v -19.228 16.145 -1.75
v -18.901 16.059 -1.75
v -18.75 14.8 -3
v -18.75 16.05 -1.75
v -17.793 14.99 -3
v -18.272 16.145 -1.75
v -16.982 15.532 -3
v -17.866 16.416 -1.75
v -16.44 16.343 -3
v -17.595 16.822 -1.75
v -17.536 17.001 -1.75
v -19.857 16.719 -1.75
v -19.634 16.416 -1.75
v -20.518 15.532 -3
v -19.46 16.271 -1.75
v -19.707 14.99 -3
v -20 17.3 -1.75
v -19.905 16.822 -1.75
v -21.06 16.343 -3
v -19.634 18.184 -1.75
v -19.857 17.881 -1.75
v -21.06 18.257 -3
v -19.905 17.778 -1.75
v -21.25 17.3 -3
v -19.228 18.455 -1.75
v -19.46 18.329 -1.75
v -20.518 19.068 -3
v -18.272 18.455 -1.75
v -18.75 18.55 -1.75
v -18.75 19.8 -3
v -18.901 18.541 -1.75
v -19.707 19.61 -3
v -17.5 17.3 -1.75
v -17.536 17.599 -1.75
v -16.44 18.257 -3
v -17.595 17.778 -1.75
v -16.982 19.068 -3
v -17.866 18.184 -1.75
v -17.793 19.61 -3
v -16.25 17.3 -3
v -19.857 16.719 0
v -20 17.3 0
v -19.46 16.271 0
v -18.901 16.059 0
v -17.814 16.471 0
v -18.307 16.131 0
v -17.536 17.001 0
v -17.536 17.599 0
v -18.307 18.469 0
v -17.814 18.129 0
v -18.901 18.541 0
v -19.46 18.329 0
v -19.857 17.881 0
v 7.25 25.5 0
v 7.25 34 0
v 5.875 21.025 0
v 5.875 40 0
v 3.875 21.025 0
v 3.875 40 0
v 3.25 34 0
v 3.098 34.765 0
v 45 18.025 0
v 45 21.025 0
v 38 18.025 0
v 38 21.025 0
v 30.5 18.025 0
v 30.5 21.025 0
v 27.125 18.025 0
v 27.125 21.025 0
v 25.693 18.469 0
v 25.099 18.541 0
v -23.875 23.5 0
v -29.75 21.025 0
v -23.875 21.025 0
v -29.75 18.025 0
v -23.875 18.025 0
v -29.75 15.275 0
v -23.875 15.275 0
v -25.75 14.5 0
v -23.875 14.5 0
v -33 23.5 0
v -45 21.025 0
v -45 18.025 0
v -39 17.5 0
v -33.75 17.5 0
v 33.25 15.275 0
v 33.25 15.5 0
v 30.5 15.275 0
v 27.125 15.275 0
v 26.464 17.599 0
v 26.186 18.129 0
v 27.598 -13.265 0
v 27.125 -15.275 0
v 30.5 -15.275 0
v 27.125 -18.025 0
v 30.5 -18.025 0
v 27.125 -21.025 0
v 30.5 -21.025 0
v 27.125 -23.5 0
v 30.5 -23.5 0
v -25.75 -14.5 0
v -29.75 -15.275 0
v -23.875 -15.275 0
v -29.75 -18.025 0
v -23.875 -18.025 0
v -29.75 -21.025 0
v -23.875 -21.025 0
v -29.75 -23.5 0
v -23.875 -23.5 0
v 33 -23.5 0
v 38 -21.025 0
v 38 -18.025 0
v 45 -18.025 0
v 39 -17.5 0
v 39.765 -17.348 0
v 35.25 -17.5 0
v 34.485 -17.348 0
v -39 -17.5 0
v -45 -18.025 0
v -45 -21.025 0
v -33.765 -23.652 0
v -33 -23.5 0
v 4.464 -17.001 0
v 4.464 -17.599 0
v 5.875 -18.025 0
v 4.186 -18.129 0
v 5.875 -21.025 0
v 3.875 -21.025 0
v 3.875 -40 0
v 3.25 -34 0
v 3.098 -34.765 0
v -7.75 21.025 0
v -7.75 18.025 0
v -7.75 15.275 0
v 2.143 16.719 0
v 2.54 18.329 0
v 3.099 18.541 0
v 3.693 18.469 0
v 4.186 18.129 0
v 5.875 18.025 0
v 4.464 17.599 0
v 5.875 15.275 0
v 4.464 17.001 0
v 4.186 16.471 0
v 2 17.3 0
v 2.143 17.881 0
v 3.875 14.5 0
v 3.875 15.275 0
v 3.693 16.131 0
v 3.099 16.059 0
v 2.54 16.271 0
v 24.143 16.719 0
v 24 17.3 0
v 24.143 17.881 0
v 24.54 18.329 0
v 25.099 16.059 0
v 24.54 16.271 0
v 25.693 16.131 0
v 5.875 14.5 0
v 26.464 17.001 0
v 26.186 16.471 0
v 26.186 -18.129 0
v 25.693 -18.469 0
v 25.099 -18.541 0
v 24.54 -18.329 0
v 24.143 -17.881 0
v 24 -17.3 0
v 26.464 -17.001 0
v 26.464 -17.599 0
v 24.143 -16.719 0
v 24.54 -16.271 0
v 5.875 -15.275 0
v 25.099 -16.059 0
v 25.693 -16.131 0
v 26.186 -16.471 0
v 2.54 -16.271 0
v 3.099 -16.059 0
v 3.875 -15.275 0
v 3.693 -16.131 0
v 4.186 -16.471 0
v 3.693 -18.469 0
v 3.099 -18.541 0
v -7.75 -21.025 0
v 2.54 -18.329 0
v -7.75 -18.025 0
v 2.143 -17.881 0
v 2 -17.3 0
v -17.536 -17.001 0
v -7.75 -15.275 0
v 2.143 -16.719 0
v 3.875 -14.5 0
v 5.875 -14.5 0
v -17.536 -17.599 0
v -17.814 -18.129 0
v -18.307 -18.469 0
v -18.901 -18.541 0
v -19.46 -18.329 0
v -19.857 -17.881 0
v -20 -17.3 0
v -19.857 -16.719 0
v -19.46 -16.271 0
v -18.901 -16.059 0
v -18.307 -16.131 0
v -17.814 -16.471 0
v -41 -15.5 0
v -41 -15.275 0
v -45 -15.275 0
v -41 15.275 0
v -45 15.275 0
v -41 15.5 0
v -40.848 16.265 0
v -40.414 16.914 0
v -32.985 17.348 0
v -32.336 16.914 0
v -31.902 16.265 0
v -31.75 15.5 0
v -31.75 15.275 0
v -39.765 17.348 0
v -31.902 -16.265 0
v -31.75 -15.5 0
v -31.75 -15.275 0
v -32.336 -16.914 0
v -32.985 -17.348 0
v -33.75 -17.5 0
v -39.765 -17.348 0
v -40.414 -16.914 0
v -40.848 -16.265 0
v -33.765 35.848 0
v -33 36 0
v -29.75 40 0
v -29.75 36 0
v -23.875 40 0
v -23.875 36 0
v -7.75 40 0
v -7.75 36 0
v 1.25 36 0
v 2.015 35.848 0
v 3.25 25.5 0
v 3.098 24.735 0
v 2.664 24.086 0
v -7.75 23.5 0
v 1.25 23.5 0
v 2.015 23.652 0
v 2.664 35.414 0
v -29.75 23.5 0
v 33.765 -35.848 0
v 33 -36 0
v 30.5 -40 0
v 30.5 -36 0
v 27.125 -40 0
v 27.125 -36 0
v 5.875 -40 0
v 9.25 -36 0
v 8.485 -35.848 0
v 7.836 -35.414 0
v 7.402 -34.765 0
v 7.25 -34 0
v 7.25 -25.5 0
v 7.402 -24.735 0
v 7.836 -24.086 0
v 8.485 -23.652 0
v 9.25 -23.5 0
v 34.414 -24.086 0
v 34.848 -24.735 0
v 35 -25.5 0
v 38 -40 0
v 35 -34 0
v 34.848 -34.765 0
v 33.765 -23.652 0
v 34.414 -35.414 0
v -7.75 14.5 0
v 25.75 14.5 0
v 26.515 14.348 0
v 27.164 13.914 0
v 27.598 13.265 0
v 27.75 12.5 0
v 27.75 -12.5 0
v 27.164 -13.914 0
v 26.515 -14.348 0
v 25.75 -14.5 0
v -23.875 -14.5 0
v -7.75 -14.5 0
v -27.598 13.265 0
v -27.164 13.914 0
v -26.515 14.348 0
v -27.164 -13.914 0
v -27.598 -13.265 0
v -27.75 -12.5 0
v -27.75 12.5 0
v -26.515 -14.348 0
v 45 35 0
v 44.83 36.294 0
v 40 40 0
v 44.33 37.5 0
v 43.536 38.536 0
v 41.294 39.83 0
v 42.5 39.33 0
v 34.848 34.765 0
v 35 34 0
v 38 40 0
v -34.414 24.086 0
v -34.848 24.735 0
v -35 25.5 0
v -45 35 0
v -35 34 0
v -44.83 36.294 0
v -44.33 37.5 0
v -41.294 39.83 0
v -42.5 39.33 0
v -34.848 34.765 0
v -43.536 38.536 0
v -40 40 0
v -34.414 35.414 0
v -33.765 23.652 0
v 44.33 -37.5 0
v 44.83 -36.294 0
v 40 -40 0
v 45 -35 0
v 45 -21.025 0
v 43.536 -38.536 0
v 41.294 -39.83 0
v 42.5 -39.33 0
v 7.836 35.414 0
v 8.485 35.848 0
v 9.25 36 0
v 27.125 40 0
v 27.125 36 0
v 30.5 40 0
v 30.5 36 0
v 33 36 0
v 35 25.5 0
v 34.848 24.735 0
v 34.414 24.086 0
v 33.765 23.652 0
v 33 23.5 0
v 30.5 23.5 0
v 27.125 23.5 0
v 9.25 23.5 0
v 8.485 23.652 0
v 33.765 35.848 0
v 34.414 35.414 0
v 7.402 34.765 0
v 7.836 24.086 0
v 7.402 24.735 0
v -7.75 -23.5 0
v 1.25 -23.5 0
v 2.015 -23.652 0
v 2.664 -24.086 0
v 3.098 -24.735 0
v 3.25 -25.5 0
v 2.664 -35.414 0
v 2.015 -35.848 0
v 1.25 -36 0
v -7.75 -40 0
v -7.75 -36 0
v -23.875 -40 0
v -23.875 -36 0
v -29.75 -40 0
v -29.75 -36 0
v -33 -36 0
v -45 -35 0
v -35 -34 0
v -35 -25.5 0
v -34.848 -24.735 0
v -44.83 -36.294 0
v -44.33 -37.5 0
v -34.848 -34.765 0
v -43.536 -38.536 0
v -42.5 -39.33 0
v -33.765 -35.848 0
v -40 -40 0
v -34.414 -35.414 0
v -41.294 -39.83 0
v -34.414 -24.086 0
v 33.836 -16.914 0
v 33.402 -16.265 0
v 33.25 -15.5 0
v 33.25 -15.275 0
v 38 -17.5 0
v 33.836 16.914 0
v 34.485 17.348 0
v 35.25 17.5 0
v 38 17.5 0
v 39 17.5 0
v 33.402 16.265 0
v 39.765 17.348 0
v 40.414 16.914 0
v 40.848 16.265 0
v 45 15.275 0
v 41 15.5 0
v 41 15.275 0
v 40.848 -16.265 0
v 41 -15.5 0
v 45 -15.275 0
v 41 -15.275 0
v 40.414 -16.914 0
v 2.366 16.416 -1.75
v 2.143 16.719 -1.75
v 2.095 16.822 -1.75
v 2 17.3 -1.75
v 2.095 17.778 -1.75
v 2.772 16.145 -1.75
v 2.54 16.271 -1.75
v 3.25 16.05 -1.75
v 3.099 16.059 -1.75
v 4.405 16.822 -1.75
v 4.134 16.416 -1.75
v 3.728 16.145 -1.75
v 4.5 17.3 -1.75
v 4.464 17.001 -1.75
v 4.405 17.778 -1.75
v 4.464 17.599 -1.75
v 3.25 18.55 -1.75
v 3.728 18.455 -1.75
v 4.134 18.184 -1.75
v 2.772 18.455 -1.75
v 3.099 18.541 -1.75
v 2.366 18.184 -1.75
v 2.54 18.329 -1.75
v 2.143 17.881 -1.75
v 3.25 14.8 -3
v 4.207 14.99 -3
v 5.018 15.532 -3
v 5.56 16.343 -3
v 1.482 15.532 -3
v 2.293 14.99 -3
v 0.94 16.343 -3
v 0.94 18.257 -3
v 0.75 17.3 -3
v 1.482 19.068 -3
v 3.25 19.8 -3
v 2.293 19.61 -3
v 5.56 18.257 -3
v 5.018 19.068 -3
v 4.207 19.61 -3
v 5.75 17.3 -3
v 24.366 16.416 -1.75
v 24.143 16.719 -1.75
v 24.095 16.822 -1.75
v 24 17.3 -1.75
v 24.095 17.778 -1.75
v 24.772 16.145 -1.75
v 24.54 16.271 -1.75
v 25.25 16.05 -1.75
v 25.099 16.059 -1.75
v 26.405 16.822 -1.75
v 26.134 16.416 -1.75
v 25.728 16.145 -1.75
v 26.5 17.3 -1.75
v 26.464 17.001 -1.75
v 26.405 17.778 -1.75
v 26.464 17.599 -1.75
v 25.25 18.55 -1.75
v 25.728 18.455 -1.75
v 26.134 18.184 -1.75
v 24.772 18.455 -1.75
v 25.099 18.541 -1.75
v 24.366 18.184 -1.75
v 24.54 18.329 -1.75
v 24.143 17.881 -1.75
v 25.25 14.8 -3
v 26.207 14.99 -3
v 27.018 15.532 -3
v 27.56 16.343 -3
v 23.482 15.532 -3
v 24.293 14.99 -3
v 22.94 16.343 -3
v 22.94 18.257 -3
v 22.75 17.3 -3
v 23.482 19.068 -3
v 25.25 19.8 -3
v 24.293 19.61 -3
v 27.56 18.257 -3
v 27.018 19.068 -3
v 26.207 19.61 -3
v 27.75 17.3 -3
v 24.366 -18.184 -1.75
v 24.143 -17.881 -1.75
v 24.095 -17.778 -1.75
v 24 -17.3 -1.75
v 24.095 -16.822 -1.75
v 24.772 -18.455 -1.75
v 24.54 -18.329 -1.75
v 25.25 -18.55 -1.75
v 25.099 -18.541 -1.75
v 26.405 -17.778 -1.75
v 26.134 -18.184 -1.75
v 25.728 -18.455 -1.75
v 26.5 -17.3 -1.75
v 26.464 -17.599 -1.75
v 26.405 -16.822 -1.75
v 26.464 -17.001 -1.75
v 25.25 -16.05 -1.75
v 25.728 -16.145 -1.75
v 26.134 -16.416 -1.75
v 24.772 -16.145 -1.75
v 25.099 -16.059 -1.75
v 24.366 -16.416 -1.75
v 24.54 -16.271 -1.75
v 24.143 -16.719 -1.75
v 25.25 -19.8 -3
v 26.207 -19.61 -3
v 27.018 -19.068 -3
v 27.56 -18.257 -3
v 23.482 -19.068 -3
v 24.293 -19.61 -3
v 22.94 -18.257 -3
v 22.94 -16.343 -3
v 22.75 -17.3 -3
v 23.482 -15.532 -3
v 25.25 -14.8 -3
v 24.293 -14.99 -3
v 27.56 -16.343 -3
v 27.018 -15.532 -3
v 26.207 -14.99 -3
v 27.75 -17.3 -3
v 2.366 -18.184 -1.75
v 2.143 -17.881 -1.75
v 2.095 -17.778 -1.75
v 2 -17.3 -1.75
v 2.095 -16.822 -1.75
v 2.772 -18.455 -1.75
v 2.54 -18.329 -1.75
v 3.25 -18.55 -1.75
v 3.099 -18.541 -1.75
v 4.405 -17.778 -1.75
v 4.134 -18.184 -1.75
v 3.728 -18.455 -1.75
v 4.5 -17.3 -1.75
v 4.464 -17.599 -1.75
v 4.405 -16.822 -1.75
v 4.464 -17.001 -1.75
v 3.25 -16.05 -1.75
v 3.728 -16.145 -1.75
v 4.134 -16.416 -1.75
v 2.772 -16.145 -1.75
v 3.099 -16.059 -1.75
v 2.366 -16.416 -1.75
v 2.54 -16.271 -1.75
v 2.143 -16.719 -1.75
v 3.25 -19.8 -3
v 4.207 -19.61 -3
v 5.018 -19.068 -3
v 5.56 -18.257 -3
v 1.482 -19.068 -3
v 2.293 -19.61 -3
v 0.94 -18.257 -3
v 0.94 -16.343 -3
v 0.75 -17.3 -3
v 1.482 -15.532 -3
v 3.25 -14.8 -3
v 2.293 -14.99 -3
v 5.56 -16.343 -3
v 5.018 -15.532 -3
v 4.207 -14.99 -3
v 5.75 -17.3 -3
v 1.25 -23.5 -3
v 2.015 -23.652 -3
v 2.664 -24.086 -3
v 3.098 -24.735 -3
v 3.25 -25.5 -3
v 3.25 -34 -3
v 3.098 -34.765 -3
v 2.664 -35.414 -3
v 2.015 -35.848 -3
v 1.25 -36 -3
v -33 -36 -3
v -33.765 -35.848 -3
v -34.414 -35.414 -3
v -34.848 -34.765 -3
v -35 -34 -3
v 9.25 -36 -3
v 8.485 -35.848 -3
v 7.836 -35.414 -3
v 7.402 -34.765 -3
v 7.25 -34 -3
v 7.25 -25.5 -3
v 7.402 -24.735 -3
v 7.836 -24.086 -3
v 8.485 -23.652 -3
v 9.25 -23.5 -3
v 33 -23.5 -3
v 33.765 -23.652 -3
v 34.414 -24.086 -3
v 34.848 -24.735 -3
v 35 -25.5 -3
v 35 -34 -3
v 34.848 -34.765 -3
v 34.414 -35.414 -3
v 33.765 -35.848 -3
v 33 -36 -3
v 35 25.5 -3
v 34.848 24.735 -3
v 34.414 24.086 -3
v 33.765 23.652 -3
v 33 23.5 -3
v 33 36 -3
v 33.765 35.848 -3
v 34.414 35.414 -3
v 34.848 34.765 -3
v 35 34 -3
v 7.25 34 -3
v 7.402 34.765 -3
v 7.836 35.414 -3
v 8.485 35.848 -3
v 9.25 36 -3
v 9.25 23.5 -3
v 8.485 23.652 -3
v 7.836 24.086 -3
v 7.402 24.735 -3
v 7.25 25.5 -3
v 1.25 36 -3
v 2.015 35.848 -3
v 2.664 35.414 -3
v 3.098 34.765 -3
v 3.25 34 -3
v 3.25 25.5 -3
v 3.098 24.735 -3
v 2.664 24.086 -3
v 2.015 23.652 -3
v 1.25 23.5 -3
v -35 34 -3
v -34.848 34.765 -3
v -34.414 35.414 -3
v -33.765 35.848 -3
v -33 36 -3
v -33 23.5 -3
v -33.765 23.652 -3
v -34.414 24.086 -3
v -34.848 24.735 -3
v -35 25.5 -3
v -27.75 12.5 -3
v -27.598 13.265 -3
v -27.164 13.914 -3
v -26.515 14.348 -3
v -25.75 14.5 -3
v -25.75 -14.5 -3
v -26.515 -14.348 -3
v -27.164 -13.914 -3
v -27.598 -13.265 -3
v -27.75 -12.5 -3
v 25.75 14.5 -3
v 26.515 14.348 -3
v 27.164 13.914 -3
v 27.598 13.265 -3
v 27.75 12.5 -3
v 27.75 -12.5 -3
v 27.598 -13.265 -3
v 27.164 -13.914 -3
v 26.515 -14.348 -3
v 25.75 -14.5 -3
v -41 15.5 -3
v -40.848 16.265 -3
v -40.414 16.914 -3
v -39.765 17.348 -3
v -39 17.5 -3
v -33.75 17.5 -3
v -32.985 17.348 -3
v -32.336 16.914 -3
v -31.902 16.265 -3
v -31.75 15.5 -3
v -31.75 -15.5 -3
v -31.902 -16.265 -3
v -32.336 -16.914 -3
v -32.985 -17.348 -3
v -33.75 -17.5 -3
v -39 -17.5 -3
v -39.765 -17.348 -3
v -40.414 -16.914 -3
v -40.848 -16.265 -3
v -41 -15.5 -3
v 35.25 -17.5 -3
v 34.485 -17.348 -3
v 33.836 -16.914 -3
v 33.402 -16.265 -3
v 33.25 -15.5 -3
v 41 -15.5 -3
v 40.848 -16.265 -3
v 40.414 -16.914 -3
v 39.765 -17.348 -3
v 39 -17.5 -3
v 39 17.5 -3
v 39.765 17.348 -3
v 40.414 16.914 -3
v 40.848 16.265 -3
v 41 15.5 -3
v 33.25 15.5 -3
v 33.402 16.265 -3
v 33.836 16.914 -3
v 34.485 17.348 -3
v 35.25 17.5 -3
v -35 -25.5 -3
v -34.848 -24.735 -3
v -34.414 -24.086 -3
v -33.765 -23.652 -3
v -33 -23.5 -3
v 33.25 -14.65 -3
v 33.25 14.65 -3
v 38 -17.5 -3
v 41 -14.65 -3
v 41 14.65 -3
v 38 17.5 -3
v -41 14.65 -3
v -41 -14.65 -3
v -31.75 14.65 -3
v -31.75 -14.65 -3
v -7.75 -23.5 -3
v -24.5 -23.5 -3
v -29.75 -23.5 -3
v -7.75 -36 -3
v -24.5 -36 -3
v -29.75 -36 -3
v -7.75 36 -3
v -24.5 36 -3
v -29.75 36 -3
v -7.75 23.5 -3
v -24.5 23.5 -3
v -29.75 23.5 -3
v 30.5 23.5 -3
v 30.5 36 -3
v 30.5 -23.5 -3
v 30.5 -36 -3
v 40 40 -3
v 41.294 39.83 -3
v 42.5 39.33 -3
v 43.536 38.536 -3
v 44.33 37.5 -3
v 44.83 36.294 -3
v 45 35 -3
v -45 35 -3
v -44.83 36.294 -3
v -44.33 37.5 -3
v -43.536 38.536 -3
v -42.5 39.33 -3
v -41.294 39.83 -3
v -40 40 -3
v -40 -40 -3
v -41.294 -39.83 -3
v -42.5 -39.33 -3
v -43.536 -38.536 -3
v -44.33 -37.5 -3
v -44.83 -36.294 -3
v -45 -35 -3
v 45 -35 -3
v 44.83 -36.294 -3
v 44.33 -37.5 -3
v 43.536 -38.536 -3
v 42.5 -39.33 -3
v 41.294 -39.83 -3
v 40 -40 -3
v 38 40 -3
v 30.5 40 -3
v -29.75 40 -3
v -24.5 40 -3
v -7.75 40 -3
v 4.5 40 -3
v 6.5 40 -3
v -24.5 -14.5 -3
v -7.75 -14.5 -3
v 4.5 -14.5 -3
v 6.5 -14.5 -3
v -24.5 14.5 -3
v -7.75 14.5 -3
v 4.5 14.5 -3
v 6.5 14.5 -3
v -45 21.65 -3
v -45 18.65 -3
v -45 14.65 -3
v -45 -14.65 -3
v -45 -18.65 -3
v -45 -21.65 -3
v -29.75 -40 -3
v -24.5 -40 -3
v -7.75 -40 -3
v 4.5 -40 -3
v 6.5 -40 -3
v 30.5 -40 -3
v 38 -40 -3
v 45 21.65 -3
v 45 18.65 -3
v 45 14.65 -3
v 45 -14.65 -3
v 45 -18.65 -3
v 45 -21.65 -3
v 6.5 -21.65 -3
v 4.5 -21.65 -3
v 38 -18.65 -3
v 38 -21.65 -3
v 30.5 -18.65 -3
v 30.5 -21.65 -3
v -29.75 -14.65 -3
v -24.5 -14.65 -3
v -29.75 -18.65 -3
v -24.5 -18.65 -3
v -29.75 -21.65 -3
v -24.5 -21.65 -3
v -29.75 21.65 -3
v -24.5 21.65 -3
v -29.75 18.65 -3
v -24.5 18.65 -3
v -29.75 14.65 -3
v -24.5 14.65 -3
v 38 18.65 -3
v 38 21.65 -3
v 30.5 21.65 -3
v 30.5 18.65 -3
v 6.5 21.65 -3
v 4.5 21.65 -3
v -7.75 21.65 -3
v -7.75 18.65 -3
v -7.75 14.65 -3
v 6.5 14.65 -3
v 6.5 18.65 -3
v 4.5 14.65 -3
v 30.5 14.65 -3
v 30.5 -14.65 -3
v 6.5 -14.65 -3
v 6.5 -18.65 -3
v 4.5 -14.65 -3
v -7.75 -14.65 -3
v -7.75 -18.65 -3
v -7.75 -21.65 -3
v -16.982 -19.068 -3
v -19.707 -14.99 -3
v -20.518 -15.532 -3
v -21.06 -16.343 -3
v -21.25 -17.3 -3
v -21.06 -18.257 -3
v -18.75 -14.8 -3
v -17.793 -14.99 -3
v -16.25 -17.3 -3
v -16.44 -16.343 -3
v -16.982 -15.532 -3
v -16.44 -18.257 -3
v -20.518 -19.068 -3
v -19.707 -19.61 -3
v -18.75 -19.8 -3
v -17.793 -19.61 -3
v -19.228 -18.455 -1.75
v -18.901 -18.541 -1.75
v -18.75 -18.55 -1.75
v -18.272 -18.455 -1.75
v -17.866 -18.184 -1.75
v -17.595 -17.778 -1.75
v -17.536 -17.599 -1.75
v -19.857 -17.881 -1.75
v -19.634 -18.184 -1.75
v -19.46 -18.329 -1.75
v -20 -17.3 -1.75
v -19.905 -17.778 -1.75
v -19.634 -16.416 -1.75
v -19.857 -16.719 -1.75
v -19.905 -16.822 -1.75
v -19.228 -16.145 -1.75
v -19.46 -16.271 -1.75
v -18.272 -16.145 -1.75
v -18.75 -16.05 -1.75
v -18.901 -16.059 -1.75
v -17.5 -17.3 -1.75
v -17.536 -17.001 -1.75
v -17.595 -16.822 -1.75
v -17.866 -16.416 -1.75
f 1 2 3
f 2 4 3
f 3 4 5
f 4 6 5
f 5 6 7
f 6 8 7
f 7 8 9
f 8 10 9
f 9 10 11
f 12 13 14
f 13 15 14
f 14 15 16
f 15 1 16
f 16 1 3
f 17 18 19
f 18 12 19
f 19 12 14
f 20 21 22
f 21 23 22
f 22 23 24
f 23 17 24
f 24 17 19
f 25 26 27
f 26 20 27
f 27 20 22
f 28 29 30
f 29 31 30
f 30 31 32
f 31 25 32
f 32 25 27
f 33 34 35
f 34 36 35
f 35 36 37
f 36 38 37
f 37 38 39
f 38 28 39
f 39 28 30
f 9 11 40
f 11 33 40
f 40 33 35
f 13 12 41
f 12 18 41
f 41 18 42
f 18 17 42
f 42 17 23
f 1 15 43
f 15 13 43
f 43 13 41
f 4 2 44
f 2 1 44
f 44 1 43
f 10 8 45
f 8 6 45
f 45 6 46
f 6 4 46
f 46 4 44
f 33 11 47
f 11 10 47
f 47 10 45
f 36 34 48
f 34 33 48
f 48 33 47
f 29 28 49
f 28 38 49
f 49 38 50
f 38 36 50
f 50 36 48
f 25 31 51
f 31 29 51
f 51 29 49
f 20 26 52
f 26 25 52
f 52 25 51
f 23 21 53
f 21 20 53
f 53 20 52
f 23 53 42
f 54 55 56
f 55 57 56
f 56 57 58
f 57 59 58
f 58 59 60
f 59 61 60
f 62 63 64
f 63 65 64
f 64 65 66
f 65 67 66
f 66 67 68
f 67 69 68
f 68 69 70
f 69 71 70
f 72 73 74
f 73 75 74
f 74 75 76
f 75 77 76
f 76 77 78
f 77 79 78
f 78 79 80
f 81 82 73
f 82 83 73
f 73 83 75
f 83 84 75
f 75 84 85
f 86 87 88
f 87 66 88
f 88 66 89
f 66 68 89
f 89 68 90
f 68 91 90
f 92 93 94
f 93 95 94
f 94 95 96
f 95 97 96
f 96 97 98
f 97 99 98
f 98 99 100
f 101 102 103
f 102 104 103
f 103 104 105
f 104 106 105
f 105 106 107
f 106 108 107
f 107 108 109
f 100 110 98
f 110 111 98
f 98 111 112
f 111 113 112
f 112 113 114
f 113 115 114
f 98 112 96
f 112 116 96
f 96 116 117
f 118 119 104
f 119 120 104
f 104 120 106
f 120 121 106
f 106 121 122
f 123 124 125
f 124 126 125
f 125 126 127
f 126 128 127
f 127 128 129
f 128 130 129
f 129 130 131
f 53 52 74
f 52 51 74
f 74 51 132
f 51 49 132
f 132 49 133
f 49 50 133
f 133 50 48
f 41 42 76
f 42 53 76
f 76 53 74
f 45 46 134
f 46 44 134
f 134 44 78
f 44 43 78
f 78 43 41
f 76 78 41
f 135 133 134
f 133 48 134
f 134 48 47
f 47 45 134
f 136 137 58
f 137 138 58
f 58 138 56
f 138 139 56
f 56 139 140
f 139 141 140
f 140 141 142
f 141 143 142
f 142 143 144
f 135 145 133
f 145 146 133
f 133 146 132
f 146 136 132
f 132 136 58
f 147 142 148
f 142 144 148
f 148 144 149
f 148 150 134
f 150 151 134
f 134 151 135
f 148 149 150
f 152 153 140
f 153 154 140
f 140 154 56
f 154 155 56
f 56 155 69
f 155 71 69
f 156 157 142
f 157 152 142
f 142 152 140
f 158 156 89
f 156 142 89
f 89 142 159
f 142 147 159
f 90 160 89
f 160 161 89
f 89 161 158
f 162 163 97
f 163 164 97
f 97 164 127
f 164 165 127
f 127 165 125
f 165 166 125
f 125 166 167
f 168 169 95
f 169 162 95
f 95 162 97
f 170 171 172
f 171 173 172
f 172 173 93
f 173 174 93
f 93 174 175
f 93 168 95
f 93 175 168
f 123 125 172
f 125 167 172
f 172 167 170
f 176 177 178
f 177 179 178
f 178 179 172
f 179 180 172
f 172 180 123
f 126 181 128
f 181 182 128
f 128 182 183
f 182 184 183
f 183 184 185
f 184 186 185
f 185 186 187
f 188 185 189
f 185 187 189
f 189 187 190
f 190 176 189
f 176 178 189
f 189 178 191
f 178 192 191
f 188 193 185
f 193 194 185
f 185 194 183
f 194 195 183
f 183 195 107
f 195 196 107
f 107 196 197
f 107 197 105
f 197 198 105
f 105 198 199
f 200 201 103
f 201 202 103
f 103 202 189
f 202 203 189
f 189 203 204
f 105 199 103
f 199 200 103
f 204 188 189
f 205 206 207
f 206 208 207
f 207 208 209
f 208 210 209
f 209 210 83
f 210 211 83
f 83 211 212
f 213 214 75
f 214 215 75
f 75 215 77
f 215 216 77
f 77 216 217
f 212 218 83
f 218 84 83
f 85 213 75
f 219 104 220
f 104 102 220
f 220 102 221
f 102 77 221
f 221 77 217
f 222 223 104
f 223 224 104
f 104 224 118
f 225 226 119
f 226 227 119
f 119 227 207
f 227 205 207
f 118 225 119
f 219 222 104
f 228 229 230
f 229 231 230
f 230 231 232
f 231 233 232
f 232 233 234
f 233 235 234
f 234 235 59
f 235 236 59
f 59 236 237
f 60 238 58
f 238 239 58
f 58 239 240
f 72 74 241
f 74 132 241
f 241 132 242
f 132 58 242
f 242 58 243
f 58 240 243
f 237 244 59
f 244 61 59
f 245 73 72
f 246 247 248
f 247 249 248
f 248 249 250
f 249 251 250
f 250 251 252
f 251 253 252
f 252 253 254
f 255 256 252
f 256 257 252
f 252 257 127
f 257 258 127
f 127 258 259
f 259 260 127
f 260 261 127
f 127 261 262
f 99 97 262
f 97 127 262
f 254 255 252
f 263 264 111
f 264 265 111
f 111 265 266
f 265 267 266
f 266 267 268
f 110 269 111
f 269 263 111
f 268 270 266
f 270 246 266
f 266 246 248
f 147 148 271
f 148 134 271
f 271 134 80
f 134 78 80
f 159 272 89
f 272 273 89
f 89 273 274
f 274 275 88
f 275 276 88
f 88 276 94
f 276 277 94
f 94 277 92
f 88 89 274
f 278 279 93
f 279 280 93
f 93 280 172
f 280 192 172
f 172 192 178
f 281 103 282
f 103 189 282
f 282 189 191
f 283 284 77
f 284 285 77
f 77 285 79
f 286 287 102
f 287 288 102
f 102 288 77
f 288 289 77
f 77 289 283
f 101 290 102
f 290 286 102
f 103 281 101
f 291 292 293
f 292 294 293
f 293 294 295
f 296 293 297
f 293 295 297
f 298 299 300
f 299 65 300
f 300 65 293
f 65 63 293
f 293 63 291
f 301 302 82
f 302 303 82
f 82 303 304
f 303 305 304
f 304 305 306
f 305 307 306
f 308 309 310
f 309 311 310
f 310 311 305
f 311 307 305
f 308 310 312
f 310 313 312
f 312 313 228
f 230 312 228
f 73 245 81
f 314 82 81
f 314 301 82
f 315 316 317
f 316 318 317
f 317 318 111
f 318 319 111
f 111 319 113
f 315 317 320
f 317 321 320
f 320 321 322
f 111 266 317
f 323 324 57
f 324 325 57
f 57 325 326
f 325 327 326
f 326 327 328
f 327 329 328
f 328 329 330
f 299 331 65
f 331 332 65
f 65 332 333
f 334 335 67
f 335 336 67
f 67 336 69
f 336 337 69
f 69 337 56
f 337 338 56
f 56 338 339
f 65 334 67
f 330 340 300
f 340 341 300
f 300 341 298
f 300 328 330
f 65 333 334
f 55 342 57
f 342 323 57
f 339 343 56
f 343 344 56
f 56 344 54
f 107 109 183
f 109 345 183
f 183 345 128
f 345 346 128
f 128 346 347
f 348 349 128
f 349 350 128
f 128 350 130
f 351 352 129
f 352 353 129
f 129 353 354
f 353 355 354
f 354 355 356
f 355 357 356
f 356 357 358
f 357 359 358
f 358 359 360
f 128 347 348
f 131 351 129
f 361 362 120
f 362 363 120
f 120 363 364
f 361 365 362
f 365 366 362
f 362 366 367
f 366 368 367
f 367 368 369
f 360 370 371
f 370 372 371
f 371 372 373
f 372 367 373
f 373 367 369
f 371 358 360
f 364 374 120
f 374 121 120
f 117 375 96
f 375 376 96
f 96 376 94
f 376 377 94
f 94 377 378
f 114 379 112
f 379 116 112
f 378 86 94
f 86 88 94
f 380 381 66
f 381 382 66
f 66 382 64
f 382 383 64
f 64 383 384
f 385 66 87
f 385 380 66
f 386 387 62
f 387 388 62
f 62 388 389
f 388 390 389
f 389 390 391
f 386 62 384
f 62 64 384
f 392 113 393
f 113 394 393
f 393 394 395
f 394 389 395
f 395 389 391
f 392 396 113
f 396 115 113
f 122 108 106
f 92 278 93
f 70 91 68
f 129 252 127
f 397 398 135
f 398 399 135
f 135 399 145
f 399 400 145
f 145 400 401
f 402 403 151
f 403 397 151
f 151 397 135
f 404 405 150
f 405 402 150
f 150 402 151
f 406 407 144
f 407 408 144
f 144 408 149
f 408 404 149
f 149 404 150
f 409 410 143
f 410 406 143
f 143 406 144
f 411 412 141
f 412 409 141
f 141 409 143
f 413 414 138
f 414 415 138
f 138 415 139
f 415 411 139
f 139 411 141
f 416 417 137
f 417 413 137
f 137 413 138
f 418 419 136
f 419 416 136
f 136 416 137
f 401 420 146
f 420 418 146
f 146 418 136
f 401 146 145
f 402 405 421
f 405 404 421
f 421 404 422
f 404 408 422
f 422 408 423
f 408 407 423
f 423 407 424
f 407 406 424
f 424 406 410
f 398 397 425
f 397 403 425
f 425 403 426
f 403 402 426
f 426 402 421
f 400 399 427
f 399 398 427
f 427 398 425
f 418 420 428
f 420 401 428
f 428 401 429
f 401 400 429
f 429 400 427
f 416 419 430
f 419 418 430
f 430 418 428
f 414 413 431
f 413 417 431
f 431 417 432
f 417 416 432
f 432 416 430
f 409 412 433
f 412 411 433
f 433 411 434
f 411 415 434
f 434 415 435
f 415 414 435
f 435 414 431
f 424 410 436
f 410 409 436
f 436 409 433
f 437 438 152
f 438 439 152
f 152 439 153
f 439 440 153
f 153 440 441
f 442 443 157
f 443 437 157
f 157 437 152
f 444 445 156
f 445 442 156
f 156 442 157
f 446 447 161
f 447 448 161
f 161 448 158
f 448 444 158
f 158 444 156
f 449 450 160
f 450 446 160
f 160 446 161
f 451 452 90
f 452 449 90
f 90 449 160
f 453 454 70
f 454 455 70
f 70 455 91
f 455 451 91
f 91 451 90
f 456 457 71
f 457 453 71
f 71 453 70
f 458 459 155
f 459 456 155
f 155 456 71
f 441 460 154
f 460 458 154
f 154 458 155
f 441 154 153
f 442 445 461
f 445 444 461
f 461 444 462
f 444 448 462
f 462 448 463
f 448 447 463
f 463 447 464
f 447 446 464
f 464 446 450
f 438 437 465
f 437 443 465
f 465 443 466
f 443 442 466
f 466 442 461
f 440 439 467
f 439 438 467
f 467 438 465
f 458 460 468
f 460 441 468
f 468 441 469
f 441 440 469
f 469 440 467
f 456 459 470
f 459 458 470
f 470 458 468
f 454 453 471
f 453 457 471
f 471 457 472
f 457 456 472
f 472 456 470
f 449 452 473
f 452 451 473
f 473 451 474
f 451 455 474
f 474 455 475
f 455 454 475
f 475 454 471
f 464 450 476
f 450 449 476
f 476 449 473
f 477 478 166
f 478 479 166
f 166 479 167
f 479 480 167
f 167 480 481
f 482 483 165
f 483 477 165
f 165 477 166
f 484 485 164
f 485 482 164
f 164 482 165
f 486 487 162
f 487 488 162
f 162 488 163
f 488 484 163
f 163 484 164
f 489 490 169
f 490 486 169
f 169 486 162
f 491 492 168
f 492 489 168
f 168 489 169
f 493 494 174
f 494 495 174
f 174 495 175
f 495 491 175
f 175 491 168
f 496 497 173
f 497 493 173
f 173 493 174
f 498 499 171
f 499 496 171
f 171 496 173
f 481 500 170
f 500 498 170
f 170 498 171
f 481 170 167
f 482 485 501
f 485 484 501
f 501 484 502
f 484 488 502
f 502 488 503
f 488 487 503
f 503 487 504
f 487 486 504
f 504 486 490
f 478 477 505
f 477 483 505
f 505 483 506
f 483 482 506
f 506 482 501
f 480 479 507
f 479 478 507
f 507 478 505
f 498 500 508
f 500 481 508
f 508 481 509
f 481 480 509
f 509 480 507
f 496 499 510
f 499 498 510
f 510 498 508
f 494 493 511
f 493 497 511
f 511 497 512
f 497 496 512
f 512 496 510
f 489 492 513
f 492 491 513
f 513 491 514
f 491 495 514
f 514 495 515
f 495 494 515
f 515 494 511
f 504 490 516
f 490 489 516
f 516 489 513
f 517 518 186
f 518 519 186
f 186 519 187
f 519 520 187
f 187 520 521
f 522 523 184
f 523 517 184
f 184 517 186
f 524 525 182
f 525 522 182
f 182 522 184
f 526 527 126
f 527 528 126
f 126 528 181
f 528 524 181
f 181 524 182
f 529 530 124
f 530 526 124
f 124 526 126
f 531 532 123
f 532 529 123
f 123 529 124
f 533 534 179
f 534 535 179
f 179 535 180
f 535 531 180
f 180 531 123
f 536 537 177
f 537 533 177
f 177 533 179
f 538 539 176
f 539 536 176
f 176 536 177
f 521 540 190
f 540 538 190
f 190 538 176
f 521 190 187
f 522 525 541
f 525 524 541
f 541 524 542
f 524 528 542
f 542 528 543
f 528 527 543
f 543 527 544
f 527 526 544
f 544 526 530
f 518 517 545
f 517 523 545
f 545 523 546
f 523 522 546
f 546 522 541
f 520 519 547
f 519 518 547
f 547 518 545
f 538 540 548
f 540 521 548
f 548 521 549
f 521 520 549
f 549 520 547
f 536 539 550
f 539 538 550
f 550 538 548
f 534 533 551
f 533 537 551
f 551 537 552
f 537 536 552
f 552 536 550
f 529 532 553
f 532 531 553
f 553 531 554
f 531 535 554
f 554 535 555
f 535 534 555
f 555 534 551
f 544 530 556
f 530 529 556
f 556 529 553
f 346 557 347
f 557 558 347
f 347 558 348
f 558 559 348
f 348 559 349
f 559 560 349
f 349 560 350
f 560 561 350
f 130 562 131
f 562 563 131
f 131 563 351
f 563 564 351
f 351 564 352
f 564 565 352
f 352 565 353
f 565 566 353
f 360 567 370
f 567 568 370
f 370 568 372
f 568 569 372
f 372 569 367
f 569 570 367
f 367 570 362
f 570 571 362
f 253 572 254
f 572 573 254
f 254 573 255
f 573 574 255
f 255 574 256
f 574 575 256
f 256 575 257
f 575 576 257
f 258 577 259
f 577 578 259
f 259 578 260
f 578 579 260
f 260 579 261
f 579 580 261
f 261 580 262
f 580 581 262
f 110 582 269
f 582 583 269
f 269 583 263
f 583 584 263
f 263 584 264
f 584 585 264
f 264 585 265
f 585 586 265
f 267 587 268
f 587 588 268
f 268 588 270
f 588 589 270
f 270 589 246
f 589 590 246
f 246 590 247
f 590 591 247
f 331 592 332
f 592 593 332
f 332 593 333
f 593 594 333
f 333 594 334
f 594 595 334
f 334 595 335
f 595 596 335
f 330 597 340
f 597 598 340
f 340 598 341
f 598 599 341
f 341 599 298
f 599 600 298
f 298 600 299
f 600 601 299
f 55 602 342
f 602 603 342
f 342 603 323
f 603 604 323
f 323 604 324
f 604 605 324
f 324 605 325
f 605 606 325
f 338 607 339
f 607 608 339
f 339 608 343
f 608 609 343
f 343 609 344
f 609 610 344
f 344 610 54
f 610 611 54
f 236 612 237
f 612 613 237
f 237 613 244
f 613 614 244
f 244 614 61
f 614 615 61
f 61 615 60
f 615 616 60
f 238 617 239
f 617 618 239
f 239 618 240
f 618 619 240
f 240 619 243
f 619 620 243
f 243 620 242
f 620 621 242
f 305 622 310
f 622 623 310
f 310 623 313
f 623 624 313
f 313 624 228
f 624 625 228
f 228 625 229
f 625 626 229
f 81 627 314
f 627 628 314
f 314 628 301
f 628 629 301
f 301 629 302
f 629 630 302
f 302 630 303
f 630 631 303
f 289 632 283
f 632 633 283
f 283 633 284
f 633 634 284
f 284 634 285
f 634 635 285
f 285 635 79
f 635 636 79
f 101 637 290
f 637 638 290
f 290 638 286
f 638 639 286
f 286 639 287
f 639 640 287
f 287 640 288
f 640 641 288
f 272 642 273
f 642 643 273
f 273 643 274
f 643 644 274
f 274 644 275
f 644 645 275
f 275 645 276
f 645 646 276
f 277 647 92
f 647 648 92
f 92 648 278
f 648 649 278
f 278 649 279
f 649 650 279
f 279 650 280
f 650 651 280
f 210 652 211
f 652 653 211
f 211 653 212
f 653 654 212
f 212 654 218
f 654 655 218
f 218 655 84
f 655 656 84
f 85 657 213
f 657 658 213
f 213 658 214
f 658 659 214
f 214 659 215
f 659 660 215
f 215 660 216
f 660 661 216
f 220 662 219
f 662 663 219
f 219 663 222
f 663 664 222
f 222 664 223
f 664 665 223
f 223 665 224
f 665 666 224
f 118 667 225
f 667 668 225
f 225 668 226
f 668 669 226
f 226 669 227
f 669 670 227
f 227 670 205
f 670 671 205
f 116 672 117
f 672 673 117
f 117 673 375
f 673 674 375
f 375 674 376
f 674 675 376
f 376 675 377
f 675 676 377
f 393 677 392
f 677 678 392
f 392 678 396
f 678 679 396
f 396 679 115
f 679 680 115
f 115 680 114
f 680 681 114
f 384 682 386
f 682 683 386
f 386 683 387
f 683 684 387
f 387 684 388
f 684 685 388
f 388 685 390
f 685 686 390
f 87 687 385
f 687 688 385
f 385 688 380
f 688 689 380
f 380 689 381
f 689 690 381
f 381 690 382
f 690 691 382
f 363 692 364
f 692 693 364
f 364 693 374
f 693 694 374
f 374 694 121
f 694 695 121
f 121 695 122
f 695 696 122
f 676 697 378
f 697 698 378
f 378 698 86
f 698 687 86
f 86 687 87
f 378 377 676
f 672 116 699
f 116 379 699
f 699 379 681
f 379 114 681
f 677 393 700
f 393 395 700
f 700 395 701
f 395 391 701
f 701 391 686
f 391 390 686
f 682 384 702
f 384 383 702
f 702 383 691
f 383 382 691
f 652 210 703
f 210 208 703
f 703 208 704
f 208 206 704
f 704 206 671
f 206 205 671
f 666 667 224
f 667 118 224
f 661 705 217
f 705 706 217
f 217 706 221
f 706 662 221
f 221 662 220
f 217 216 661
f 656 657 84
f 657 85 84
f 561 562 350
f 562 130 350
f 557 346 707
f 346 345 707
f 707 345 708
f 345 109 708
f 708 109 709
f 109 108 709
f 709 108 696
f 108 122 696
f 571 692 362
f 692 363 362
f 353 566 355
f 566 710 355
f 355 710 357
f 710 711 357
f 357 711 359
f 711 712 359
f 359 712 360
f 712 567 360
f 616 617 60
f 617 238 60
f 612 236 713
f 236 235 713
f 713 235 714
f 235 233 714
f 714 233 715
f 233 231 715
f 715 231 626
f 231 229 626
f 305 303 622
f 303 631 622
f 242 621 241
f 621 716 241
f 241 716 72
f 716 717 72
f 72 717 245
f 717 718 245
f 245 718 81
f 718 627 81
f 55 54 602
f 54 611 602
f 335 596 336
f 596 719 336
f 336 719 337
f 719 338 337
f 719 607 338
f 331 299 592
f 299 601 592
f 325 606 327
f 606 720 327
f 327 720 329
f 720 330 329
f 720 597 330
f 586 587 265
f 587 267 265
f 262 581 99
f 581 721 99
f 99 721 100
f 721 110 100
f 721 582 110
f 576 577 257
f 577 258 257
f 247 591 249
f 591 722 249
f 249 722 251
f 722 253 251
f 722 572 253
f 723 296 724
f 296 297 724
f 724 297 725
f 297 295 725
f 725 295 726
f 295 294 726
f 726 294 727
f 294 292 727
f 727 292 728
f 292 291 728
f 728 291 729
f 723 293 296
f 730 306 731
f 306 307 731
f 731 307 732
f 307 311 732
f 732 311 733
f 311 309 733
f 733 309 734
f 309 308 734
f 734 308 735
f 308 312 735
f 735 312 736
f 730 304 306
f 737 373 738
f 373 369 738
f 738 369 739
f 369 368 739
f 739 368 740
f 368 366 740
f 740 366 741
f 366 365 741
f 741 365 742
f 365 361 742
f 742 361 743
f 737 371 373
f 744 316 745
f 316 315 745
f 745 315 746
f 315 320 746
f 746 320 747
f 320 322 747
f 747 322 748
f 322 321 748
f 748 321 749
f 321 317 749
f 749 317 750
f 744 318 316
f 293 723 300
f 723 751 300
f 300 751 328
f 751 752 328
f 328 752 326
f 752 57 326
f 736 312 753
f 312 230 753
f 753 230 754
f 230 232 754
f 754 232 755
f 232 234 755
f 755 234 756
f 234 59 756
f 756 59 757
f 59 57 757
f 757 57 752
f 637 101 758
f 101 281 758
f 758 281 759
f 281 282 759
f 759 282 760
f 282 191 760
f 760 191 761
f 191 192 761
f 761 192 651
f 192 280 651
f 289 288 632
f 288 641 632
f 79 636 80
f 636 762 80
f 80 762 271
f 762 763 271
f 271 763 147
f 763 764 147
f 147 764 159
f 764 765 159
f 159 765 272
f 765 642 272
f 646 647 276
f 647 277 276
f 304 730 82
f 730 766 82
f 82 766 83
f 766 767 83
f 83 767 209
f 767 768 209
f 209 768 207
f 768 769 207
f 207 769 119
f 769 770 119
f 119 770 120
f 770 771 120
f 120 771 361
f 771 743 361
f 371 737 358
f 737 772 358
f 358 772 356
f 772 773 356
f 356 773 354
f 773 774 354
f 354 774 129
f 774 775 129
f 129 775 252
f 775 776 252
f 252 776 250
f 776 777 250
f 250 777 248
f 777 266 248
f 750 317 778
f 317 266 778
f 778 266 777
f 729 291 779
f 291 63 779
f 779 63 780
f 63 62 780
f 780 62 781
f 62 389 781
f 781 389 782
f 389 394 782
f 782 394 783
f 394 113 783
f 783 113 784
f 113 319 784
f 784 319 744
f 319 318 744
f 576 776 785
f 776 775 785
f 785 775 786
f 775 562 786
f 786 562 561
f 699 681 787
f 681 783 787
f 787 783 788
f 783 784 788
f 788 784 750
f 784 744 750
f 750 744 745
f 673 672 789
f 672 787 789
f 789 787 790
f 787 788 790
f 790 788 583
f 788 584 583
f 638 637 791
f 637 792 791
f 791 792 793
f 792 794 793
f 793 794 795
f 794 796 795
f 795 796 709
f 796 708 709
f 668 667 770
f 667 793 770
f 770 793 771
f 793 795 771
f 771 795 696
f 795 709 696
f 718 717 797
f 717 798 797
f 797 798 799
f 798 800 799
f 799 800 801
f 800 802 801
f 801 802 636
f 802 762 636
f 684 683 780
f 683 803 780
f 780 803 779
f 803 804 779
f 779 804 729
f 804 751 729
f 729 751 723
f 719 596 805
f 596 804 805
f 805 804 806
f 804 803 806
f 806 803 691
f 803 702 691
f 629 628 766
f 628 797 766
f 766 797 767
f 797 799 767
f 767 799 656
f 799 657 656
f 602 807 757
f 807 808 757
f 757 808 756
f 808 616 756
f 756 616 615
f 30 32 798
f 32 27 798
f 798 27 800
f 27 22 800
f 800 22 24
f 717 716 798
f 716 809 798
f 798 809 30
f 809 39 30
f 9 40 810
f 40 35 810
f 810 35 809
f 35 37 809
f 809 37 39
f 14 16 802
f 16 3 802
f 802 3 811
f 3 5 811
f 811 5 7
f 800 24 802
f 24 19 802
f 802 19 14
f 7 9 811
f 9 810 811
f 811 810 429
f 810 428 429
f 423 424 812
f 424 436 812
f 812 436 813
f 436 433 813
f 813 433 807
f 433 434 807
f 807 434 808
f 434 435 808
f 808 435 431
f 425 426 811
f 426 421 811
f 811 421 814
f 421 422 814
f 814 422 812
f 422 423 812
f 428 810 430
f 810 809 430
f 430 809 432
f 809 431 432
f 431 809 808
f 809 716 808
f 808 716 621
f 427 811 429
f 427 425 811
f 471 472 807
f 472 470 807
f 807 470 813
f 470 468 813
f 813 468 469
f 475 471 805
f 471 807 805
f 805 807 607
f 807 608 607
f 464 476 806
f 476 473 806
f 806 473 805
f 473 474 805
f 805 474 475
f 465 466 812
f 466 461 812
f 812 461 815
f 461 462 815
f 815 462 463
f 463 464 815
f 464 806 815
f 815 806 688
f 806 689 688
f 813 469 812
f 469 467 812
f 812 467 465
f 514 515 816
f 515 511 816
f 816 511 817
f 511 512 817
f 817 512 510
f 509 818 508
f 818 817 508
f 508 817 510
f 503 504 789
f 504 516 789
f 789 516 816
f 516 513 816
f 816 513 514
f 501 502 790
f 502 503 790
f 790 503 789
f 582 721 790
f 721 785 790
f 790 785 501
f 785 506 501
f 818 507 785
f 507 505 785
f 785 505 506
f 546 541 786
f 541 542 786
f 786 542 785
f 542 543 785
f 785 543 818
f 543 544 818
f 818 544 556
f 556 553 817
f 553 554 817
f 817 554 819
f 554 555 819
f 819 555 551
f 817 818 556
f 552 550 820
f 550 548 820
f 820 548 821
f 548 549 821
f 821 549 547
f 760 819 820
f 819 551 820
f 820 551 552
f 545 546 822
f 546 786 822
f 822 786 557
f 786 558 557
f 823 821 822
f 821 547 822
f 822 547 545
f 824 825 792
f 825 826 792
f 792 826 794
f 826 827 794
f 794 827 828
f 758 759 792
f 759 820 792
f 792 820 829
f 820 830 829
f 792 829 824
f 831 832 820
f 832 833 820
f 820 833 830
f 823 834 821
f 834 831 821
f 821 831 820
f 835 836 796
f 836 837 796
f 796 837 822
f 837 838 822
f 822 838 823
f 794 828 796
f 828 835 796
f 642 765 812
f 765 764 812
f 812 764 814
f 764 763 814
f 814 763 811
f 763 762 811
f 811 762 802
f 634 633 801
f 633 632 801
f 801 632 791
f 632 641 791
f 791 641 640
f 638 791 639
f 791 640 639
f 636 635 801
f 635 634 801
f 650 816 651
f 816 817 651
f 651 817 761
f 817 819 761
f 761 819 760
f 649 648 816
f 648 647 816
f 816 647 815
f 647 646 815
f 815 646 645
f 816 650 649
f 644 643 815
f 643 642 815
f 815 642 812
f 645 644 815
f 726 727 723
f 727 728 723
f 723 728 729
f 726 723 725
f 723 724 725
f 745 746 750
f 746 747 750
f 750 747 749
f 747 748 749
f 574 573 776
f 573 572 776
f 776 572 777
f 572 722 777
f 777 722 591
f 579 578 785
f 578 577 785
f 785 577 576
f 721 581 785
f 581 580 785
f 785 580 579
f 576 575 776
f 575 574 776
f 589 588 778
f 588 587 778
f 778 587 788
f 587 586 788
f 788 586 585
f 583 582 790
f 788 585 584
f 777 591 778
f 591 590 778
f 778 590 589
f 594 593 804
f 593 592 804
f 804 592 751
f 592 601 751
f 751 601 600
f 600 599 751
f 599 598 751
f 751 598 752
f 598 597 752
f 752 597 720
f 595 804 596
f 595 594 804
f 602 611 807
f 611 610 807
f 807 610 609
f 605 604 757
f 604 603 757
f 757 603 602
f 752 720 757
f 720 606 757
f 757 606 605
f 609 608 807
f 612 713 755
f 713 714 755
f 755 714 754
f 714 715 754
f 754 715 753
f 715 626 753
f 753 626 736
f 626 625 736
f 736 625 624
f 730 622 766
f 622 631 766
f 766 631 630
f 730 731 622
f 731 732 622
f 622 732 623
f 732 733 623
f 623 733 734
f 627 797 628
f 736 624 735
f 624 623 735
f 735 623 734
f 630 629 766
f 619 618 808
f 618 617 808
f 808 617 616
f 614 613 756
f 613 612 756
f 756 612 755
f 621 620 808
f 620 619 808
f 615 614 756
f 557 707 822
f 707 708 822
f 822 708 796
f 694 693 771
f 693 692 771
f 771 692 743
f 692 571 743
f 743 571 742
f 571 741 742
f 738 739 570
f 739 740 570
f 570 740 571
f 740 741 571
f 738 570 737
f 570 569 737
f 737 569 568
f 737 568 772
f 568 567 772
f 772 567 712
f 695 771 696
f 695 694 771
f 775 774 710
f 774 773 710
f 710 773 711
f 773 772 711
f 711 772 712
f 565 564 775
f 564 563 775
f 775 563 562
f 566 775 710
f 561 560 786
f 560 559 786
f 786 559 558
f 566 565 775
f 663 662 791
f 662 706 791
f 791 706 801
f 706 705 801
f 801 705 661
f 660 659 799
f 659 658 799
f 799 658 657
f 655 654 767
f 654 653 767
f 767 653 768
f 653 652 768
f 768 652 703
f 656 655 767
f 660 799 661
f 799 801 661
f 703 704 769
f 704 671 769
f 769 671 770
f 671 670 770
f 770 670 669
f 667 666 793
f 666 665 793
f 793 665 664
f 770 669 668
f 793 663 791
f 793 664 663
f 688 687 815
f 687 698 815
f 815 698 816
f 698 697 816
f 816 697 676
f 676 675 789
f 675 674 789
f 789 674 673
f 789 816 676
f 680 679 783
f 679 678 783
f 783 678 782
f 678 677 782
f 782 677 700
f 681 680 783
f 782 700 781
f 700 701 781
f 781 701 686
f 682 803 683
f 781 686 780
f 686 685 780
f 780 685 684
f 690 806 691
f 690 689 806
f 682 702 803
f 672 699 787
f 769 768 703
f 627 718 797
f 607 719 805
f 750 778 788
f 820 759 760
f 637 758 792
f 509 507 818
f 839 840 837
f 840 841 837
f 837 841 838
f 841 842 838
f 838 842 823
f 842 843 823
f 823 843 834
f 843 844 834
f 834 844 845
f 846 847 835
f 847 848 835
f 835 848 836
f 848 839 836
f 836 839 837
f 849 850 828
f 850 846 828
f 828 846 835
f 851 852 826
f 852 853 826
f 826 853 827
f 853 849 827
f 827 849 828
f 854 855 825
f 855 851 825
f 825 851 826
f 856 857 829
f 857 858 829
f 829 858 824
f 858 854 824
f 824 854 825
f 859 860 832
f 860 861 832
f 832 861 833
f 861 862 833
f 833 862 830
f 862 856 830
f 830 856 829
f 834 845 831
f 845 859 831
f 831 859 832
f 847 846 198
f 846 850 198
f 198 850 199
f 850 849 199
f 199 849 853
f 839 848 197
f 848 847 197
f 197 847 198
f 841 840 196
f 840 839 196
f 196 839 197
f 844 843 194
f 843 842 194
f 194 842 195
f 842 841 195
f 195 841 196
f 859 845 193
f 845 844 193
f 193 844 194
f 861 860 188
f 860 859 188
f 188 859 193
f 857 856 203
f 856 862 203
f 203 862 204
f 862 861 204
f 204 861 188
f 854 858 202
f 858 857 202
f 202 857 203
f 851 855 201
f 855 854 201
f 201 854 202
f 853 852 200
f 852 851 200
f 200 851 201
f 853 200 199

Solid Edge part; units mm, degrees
sketch "Sketch1" plane through (0, 0, 0) normal (0, 0, 1) x (1, 0, 0)
  line L0 (45, -40) -> (-45, -40)
  line L1 (-45, -40) -> (-45, 40)
  line L2 (-45, 40) -> (45, 40)
  line L3 (45, 40) -> (45, -40)
  line L4 (27.75, -14.5) -> (-27.75, -14.5)
  line L5 (-27.75, -14.5) -> (-27.75, 14.5)
  line L6 (-27.75, 14.5) -> (27.75, 14.5)
  line L7 (27.75, 14.5) -> (27.75, -14.5)
  dimension "D1" = 45
  dimension "D2" = 45
extrude "Protrusion1" add sketch "Sketch1" against normal blind 3
fillet "Round_1" radius 5 4 edges at (45, -40, -1.5) (45, 40, -1.5) (-45, 40, -1.5) (-45, -40, -1.5)
extrude "Cutout1" [suppressed]
sketch "Sketch2" plane through (0, 0, 0) normal (0, 0, 1) x (0, 1, 0)
  line L0 (-36, -7.25) -> (-23.5, -7.25)
  line L1 (-23.5, -7.25) -> (-23.5, -35)
  line L2 (-23.5, -35) -> (-36, -35)
  line L3 (-36, -35) -> (-36, -7.25)
  line L4 (36, -35) -> (23.5, -35)
  line L5 (23.5, -35) -> (23.5, -7.25)
  line L6 (23.5, -7.25) -> (36, -7.25)
  line L7 (36, -7.25) -> (36, -35)
  line L8 (23.5, 35) -> (36, 35)
  line L9 (36, 35) -> (36, -3.25)
  line L10 (36, -3.25) -> (23.5, -3.25)
  line L11 (23.5, -3.25) -> (23.5, 35)
  line L12 (-36, 35) -> (-23.5, 35)
  line L13 (-23.5, 35) -> (-23.5, -3.25)
  line L14 (-23.5, -3.25) -> (-36, -3.25)
  line L15 (-36, -3.25) -> (-36, 35)
  line L16 (17.5, 31.75) -> (-17.5, 31.75)
  line L17 (-17.5, 31.75) -> (-17.5, 41)
  line L18 (-17.5, 41) -> (17.5, 41)
  line L19 (17.5, 41) -> (17.5, 31.75)
  line L20 (17.5, -41) -> (-17.5, -41)
  line L21 (-17.5, -41) -> (-17.5, -33.25)
  line L22 (-17.5, -33.25) -> (17.5, -33.25)
  line L23 (17.5, -33.25) -> (17.5, -41)
  dimension "D1" = 36
  dimension "D2" = 36
extrude "Cutout2" cut sketch "Sketch2" against normal through all
fillet "Round_2" radius 2 28 edges at (-35, -23.5, -1.5) (3.25, -23.5, -1.5) (3.25, -36, -1.5) (-35, -36, -1.5) (7.25, -36, -1.5) (7.25, -23.5, -1.5) (35, -23.5, -1.5) (35, -36, -1.5) (35, 23.5, -1.5) (35, 36, -1.5) (7.25, 36, -1.5) (7.25, 23.5, -1.5) (3.25, 36, -1.5) (3.25, 23.5, -1.5) (-35, 36, -1.5) (-35, 23.5, -1.5) (-27.75, 14.5, -1.5) (-27.75, -14.5, -1.5) (27.75, 14.5, -1.5) (27.75, -14.5, -1.5) (-41, 17.5, -1.5) (-31.75, 17.5, -1.5) (-31.75, -17.5, -1.5) (-41, -17.5, -1.5) (33.25, -17.5, -1.5) (41, -17.5, -1.5) (41, 17.5, -1.5) (33.25, 17.5, -1.5)
hole "Hole_1" at (-18.75, -17.3, -3) direction (0, 0, 1) diameter 2.5 end up to next countersink diameter 5 countersink angle 90
hole "Hole1" at (3.25, -17.3, -3) direction (0, 0, 1) diameter 2.5 end up to next countersink diameter 5 countersink angle 90
hole "Hole2" at (25.25, -17.3, -3) direction (0, 0, 1) diameter 2.5 end up to next countersink diameter 5 countersink angle 90
hole "Hole3" at (25.25, 17.3, -3) direction (0, 0, 1) diameter 2.5 end up to next countersink diameter 5 countersink angle 90
hole "Hole4" at (3.25, 17.3, -3) direction (0, 0, 1) diameter 2.5 end up to next countersink diameter 5 countersink angle 90
hole "Hole5" at (-18.75, 17.3, -3) direction (0, 0, 1) diameter 2.5 end up to next countersink diameter 5 countersink angle 90
properties material "ABS Plastic, medium impact"
